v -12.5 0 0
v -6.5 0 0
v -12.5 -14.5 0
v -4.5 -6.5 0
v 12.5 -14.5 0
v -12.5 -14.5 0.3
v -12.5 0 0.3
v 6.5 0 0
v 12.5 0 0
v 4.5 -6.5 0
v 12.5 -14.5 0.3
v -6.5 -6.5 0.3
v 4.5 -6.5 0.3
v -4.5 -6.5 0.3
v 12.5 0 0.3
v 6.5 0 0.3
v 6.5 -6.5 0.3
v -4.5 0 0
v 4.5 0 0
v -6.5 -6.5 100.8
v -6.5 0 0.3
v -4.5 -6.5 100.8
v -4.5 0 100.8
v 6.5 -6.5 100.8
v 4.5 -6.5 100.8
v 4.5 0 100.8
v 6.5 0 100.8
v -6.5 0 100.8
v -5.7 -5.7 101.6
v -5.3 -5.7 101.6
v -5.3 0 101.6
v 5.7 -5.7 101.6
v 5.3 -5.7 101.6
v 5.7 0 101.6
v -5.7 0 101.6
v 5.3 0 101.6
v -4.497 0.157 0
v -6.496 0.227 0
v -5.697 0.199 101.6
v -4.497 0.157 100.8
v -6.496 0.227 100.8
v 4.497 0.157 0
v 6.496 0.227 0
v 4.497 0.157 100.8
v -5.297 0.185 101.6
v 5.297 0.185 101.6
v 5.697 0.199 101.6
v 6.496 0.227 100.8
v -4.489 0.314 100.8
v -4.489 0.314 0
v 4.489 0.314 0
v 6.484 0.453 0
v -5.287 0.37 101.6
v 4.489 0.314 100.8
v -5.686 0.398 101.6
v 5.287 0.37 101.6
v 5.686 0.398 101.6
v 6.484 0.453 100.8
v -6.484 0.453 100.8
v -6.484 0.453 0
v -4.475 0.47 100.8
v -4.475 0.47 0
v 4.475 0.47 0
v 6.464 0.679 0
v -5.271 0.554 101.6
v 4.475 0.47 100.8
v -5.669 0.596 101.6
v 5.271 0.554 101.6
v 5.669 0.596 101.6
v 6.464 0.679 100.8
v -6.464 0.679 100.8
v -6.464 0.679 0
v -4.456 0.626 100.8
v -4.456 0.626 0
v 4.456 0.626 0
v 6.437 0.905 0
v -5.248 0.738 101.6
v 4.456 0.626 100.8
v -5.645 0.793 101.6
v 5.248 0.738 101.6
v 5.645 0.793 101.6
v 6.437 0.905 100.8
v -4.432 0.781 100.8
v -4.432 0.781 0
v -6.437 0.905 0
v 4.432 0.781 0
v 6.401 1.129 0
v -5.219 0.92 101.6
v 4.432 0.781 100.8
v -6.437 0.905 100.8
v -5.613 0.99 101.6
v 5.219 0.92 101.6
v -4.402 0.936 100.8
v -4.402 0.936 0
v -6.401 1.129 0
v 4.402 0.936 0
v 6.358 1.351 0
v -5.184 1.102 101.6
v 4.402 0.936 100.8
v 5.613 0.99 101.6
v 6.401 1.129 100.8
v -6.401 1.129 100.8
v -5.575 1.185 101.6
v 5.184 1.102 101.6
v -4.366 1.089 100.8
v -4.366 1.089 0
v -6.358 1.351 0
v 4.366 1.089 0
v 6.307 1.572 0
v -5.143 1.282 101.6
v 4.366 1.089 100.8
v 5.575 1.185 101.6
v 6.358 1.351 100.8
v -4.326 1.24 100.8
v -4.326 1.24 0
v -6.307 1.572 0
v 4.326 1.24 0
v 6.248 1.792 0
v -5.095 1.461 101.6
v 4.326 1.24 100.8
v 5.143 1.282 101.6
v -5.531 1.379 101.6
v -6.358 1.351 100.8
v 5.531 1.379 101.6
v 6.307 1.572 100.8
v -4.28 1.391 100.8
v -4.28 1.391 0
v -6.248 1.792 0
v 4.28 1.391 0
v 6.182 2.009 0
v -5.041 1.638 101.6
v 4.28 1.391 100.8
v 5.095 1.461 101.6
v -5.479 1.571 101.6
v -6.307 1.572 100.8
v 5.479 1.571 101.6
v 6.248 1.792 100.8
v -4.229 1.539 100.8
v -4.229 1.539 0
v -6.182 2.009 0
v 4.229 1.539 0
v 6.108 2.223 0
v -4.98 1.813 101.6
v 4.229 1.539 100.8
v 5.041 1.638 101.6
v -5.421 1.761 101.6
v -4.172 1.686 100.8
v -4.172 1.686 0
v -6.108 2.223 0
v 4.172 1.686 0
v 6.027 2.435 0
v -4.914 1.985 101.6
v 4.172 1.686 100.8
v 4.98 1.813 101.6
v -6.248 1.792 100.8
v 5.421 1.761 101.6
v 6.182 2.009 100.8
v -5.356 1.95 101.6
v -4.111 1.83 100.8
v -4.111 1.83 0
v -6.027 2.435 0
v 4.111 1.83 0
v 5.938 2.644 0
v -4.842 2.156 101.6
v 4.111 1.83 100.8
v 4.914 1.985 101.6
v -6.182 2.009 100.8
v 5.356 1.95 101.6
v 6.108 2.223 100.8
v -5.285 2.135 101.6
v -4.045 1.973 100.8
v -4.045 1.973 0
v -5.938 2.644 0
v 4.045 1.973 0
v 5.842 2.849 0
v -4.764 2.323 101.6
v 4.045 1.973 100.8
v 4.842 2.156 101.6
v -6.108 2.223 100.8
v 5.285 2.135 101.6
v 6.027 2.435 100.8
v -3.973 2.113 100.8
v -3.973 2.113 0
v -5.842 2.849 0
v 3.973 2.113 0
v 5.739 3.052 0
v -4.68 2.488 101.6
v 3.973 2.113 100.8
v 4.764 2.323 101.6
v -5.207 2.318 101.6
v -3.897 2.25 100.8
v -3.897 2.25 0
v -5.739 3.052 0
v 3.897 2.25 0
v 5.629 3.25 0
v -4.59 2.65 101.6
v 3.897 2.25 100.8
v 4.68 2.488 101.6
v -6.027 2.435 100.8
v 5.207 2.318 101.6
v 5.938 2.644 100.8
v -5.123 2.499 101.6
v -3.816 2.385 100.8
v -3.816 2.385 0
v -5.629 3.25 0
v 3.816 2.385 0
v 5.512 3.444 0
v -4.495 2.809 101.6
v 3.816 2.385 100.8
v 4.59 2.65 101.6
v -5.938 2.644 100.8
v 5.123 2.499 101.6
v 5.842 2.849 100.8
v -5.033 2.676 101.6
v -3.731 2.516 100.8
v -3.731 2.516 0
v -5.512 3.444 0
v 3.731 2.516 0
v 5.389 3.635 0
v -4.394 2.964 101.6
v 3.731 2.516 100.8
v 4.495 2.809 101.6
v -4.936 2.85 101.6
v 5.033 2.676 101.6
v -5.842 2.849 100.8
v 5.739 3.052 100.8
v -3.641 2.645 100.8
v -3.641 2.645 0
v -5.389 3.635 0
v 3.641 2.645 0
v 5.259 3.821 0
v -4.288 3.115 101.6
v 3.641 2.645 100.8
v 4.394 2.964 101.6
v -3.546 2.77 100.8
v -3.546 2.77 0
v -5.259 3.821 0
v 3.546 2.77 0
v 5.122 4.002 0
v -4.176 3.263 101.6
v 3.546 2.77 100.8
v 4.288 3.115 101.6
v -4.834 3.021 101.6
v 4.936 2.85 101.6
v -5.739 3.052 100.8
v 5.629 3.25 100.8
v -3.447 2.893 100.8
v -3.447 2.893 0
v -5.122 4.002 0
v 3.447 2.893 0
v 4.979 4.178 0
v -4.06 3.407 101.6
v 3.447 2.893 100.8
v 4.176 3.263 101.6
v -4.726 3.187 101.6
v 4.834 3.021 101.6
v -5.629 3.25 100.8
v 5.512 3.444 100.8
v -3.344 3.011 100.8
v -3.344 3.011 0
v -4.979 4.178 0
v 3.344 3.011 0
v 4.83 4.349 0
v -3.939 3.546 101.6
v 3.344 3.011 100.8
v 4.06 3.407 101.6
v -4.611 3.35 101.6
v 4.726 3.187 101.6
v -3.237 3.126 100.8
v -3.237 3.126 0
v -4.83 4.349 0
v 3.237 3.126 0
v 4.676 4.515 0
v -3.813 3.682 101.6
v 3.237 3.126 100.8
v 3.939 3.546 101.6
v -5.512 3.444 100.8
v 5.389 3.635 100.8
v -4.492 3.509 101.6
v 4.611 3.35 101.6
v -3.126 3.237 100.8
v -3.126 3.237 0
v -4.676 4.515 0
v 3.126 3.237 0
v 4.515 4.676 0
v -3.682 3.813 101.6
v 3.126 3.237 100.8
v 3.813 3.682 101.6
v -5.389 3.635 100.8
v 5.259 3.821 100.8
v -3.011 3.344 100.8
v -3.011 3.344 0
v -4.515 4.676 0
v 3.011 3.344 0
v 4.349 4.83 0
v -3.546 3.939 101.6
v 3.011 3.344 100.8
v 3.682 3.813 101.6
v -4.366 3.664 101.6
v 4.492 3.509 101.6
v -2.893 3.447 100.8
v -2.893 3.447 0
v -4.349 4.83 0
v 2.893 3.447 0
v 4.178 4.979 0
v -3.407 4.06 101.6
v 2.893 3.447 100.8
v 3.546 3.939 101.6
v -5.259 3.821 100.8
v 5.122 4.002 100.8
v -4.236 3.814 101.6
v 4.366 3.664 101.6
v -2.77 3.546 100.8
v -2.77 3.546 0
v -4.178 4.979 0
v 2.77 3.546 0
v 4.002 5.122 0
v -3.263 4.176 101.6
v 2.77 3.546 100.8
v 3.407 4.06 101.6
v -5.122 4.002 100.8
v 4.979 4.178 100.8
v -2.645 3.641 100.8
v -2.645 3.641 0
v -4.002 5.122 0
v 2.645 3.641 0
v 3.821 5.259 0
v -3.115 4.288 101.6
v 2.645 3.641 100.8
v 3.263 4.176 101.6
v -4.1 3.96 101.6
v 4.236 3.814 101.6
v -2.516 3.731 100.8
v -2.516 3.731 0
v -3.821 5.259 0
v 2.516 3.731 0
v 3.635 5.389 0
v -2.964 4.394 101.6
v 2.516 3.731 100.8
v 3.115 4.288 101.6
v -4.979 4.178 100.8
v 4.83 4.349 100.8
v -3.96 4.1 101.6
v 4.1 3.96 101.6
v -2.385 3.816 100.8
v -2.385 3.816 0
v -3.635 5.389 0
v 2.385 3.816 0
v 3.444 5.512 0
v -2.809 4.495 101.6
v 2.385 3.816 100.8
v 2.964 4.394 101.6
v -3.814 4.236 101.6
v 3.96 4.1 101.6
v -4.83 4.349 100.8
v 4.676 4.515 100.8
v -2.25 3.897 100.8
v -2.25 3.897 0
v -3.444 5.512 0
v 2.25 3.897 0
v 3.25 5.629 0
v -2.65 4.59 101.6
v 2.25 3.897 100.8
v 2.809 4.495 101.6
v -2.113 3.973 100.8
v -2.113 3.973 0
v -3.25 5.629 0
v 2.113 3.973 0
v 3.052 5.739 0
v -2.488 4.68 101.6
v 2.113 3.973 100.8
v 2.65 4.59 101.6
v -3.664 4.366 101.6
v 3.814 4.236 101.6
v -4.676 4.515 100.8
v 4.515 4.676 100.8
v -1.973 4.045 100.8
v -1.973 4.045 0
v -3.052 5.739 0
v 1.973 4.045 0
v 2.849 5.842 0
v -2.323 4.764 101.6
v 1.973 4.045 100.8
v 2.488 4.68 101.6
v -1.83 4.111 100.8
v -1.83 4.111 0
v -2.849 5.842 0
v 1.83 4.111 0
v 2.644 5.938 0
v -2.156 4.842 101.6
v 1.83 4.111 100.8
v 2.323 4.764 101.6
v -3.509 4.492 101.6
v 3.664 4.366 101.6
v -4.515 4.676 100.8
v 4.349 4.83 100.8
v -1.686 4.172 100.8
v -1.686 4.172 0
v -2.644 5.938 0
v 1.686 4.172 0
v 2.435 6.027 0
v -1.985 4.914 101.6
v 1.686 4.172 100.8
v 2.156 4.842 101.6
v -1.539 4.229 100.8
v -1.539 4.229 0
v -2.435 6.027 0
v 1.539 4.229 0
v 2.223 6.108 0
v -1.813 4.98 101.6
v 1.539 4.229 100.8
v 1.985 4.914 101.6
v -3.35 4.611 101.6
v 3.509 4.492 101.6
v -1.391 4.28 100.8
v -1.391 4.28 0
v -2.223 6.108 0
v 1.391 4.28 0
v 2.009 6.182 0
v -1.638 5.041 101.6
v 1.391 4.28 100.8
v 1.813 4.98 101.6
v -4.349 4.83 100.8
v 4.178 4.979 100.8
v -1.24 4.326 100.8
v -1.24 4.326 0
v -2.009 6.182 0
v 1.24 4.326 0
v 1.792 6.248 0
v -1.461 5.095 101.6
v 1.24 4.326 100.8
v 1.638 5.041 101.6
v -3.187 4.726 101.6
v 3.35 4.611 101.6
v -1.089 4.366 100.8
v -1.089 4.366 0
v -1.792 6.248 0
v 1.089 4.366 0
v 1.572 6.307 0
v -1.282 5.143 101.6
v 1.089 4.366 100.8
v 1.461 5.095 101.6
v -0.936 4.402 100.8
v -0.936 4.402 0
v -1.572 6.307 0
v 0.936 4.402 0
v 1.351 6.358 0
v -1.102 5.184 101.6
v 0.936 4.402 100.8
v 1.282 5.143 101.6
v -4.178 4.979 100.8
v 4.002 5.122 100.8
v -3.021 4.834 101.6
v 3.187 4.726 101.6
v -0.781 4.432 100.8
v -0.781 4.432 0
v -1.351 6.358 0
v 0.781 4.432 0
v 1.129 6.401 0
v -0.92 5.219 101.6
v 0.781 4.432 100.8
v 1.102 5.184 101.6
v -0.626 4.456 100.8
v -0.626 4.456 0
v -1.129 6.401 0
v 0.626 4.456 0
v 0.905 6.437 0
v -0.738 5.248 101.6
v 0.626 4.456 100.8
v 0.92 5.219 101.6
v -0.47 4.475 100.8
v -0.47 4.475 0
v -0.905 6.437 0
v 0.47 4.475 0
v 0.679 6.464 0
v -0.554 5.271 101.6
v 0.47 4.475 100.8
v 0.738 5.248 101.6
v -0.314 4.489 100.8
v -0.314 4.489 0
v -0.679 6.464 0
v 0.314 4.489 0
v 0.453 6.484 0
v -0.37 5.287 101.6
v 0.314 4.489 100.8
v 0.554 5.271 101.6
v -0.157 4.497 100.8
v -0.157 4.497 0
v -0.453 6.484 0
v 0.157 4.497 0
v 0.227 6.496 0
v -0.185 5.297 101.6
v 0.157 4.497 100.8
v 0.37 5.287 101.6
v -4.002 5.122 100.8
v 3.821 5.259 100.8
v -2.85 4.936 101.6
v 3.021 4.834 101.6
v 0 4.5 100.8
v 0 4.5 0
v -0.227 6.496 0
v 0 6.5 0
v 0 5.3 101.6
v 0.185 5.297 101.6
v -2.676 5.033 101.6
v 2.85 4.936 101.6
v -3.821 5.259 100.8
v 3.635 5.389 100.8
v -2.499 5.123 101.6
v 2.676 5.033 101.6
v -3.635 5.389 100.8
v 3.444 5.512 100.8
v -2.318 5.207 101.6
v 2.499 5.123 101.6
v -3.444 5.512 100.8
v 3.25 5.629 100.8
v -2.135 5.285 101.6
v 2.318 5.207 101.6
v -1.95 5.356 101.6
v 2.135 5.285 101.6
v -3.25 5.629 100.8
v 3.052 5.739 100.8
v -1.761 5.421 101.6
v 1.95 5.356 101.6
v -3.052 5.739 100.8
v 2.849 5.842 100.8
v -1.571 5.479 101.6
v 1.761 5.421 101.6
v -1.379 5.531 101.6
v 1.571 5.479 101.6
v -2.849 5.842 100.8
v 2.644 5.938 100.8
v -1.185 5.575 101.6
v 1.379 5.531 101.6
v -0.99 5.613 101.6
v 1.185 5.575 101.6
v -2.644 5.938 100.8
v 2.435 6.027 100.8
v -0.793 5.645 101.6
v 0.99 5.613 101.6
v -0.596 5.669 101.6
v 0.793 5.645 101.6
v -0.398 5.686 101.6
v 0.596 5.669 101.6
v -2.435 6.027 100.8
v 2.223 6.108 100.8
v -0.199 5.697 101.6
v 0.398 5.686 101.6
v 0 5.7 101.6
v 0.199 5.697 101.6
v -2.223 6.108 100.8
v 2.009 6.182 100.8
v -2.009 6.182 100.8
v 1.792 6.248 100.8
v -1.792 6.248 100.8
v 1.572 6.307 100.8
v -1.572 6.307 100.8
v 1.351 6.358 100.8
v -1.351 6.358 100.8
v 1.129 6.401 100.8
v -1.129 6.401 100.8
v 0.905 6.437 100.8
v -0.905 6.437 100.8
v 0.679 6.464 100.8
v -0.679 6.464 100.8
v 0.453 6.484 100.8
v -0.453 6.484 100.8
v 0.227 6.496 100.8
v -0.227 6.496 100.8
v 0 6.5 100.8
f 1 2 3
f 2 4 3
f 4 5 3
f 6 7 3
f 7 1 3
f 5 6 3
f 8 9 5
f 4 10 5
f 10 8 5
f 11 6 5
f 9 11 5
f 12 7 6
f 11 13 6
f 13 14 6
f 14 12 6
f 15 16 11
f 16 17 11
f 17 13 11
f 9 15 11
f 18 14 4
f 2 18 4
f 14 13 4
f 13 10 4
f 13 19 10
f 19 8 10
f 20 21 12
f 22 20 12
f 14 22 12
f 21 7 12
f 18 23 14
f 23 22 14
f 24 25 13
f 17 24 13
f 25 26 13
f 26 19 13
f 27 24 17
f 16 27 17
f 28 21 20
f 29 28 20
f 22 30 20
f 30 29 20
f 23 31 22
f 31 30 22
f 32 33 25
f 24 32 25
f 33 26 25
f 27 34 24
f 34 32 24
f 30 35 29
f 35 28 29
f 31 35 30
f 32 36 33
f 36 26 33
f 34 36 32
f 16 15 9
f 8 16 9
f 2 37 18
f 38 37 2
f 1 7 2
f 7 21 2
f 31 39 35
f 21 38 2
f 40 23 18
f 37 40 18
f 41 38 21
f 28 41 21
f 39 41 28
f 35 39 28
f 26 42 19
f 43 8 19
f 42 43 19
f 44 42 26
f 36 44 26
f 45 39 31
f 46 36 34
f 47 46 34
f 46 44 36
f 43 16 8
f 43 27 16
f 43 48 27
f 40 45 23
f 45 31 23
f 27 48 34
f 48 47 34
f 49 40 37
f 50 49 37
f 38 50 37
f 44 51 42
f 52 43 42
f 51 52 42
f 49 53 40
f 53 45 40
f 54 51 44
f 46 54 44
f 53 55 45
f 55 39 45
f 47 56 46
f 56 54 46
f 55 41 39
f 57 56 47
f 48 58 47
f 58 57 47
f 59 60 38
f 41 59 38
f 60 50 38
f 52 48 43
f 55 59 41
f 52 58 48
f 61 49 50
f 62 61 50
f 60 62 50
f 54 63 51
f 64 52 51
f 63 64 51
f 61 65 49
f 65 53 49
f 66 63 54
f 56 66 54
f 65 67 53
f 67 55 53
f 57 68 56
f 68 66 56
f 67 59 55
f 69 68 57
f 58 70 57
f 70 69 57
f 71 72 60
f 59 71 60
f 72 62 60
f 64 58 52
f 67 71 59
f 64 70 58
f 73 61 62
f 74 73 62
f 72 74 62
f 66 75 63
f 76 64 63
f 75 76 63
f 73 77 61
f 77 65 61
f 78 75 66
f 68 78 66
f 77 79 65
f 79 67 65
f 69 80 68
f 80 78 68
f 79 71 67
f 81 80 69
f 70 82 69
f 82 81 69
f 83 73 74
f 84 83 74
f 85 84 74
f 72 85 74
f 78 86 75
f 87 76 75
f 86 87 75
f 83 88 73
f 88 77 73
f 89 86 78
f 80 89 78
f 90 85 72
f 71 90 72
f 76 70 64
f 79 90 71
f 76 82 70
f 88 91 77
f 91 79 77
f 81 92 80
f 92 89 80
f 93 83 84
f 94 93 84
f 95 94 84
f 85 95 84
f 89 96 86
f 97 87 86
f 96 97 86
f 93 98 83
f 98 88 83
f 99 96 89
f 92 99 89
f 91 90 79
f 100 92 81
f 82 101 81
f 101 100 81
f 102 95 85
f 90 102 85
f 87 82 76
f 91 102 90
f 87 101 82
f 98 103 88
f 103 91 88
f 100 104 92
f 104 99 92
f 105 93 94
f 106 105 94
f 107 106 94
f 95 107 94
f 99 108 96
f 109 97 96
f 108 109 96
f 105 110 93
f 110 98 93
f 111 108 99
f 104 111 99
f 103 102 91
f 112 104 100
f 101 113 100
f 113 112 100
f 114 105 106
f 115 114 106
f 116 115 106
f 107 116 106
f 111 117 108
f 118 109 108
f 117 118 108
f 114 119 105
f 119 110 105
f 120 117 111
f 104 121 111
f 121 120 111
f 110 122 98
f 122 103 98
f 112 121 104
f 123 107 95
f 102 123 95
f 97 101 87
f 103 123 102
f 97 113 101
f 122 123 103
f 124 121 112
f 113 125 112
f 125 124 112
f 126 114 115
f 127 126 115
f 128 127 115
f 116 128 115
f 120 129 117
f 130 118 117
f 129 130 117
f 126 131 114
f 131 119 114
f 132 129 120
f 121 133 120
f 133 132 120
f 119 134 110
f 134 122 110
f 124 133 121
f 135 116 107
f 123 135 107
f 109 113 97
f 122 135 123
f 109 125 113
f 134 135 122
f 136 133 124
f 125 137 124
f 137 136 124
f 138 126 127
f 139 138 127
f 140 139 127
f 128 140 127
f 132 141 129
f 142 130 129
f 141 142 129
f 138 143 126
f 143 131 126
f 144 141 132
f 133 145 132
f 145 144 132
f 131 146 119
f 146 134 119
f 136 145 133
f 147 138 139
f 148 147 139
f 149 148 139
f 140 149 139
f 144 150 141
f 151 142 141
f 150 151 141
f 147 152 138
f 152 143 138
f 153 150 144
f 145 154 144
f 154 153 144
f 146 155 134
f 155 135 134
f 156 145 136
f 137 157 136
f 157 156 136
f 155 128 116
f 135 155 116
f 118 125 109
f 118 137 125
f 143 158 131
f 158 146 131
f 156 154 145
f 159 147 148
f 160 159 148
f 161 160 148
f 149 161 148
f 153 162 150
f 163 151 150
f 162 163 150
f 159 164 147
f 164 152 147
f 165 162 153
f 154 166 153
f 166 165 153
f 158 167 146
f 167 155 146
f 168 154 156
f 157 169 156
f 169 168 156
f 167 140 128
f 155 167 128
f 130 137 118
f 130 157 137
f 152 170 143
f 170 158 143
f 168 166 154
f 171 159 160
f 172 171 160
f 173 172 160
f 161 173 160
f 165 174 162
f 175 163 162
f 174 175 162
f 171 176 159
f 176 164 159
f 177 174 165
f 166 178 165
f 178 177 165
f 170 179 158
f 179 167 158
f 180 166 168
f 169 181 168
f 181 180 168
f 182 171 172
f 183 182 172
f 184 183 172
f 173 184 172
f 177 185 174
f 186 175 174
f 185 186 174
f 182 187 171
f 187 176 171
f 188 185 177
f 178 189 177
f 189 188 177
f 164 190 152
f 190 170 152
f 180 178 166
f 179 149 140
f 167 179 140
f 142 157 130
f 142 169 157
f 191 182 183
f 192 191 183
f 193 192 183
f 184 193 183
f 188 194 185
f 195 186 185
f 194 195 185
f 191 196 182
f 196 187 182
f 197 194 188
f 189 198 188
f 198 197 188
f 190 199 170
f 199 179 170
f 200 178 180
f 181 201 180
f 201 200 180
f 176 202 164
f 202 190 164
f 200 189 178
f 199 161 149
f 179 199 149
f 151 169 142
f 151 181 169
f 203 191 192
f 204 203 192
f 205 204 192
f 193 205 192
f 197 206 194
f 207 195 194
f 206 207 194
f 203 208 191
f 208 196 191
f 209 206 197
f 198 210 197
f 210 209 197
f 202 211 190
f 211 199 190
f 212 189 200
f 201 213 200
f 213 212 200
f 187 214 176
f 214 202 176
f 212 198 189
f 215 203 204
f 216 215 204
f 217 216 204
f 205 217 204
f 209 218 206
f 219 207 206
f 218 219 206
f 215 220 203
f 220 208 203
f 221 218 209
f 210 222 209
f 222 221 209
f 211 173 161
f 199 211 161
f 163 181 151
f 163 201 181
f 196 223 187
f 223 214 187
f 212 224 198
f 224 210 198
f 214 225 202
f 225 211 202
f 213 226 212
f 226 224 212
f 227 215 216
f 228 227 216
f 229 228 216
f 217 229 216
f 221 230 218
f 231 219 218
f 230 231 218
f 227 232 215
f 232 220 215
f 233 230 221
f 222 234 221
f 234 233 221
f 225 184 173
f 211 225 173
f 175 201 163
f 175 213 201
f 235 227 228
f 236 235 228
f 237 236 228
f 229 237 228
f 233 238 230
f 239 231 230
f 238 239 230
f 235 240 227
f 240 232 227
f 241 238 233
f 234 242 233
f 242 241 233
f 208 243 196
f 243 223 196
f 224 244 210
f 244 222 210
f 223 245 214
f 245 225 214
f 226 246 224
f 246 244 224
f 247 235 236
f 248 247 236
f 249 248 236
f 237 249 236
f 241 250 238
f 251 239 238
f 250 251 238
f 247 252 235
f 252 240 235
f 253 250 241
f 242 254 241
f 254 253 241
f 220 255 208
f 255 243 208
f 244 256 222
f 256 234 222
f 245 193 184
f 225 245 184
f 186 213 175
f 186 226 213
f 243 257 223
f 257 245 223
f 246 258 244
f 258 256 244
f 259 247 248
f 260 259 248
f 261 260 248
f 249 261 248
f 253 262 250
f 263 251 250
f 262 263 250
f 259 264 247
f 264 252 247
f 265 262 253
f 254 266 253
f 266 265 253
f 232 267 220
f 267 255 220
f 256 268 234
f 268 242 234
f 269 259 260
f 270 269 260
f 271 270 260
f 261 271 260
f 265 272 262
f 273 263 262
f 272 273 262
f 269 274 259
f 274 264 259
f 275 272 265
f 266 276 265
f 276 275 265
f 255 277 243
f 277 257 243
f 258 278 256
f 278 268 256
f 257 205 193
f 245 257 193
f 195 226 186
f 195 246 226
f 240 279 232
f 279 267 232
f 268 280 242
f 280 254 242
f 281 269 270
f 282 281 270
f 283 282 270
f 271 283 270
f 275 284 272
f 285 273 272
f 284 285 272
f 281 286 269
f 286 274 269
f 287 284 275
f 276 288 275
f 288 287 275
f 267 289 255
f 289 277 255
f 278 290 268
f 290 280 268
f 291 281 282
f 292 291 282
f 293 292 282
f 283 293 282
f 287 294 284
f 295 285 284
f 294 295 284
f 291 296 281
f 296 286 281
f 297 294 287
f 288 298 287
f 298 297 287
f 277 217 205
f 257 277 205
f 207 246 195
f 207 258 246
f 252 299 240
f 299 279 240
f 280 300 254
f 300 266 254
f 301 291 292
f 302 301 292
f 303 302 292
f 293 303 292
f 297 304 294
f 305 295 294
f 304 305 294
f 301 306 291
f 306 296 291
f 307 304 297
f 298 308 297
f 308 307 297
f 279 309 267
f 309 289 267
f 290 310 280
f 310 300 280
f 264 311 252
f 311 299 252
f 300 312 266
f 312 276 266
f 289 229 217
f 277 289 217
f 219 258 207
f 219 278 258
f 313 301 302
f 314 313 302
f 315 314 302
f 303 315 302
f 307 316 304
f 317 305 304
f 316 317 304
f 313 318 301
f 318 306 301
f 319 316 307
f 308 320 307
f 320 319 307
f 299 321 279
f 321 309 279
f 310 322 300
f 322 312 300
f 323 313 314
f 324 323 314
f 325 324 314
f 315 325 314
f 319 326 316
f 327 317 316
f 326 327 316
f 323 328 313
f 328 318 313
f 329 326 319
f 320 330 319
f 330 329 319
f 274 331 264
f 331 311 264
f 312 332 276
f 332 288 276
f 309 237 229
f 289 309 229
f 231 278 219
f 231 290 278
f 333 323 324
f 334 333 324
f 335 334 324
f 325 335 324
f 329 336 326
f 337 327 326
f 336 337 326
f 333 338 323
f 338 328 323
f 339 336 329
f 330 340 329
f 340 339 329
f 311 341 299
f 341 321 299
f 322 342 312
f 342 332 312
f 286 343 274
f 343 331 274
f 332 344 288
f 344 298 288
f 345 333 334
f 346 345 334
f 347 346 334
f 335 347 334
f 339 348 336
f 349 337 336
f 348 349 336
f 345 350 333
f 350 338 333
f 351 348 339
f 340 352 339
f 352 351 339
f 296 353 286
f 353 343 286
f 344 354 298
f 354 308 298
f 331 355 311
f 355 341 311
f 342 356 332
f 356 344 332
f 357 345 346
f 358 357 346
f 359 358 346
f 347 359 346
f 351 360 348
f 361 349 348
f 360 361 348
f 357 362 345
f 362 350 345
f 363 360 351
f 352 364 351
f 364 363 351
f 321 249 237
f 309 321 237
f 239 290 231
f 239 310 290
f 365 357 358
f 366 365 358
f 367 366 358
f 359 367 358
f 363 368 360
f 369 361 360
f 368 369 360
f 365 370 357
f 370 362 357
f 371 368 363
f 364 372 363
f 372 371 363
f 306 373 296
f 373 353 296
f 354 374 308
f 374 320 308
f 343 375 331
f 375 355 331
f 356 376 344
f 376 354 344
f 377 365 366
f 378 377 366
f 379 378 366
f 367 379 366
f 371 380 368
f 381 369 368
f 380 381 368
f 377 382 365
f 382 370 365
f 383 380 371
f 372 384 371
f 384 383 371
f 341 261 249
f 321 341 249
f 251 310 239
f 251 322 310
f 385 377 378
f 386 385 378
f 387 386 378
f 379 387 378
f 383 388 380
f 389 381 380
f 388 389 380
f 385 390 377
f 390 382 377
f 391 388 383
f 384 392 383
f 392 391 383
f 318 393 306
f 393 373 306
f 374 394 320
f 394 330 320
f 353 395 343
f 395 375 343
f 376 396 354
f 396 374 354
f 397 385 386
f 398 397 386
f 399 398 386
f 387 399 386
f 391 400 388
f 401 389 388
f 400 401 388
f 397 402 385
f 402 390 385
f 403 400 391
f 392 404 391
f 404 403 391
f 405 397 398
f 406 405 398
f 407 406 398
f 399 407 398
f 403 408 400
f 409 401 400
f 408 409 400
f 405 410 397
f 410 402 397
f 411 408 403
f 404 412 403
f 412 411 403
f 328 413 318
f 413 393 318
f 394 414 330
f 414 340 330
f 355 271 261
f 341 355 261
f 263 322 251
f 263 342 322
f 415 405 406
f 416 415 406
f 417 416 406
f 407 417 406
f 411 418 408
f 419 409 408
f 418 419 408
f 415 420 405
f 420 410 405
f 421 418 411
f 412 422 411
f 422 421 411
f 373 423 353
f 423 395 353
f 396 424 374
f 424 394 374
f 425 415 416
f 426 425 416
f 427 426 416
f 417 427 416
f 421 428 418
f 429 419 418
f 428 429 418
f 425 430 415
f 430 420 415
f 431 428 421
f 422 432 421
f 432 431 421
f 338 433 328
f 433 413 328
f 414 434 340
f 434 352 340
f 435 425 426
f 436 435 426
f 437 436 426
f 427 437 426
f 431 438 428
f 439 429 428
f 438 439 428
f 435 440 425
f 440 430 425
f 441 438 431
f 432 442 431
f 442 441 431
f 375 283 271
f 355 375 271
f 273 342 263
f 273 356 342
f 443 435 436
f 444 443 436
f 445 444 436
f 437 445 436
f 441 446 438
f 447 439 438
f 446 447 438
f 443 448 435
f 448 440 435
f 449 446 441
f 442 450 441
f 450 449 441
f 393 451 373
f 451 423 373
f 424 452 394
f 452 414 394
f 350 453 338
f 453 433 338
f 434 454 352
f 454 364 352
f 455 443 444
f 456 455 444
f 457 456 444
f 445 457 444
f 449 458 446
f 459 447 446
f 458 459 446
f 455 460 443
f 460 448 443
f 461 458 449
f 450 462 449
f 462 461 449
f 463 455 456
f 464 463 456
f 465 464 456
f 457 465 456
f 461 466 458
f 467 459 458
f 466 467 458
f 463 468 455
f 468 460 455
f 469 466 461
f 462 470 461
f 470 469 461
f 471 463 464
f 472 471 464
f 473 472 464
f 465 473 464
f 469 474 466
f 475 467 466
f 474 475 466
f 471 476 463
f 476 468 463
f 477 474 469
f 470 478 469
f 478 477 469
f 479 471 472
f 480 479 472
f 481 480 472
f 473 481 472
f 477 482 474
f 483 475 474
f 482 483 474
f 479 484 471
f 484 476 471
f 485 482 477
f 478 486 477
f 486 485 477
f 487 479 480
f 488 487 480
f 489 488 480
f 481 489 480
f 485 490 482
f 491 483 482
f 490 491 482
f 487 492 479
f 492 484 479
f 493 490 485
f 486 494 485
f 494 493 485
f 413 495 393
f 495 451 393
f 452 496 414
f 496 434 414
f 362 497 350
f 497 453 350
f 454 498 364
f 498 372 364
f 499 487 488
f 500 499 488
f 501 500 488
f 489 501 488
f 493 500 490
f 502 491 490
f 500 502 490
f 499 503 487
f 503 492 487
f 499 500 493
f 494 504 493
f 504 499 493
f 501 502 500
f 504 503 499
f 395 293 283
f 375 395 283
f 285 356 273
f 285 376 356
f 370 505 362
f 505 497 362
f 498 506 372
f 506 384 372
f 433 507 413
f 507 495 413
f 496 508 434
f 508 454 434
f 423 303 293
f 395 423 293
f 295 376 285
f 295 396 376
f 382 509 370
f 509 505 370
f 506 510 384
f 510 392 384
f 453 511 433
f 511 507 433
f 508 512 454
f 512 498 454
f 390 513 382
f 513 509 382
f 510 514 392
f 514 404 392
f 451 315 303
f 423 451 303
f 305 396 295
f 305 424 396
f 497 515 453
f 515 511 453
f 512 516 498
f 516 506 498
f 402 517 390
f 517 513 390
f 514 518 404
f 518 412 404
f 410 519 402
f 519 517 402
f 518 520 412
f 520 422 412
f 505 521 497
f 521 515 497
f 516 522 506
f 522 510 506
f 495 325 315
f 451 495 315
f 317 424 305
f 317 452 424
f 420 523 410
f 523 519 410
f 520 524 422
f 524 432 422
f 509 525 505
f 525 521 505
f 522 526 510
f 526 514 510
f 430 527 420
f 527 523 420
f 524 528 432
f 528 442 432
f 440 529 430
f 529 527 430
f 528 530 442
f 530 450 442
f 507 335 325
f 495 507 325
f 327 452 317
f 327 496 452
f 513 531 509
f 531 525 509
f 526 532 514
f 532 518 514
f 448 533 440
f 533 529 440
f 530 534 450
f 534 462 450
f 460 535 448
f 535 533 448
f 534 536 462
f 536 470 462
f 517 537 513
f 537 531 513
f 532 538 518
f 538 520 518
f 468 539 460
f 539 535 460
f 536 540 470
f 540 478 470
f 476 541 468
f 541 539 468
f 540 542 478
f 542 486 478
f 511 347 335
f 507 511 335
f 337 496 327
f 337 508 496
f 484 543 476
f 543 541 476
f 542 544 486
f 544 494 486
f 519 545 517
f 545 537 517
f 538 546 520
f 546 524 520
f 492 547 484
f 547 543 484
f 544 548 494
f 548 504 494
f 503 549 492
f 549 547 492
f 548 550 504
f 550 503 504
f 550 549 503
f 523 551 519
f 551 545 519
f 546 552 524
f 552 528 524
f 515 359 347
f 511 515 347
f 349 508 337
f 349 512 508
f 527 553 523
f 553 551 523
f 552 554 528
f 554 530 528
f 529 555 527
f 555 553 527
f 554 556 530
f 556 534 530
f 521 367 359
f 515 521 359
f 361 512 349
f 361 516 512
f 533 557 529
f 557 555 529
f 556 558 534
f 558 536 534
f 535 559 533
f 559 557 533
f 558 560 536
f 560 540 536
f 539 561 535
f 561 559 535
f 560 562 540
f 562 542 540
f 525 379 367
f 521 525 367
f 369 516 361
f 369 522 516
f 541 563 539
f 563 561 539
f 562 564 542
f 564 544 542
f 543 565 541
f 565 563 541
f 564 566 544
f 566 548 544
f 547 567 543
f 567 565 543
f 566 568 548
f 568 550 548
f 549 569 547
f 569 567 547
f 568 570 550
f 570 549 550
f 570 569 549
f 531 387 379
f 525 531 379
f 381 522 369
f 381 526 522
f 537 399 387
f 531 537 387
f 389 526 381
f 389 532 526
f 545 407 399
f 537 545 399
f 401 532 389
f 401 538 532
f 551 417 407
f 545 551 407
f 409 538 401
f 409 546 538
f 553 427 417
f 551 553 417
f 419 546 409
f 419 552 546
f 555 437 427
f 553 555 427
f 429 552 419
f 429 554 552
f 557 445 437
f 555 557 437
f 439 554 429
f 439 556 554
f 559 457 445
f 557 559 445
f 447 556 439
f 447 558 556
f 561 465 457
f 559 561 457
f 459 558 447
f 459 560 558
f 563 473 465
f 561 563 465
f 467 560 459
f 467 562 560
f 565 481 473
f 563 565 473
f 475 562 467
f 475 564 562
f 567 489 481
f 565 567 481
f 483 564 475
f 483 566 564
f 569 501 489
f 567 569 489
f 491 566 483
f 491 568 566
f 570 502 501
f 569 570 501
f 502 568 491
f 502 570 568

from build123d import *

# Parameters (mm, degrees)
BOSS_EXTRUDE1_DEPTH = 101.6
BOSS_EXTRUDE2_DEPTH = 0.3
CHAMFER1_SIZE       = 0.8


with BuildPart() as part:
    # Sketch1 → Boss-Extrude1 (new body)
    with BuildSketch(Plane.XY):
        with BuildLine():
            Line((-4.5, 0), (-4.5, -6.5))
            Line((-4.5, -6.5), (-6.5, -6.5))
            Line((-6.5, -6.5), (-6.5, 0))
            ThreePointArc((-6.5, 0), (0, 6.5), (6.5, 0))
            Line((6.5, 0), (6.5, -6.5))
            Line((6.5, -6.5), (4.5, -6.5))
            Line((4.5, -6.5), (4.5, 0))
            ThreePointArc((4.5, 0), (0, 4.5), (-4.5, 0))
        make_face()
    extrude(amount=BOSS_EXTRUDE1_DEPTH)

    # Sketch2 → Boss-Extrude2 (add)
    with BuildSketch(Plane(origin=(0, 0, 0), x_dir=(-1, 0, 0), z_dir=(0, 0, -1))):
        Polygon((4.5, 0), (4.5, -6.5), (-4.5, -6.5), (-4.5, 0), (-12.5, 0), (-12.5, -14.5), (12.5, -14.5), (12.5, 0), align=None)
    extrude(amount=-BOSS_EXTRUDE2_DEPTH)

    # Chamfer1
    chamfer1_edges = [part.edges().sort_by_distance(p)[0] for p in [
        (5.5, -6.5, 101.6),
        (6.5, -3.25, 101.6),
        (0, 6.5, 101.6),
        (-6.5, -3.25, 101.6),
        (-5.5, -6.5, 101.6),
        (-4.5, -3.25, 101.6),
        (0, 4.5, 101.6),
        (4.5, -3.25, 101.6),
    ]]
    chamfer(chamfer1_edges, length=CHAMFER1_SIZE)


solid = part.part
